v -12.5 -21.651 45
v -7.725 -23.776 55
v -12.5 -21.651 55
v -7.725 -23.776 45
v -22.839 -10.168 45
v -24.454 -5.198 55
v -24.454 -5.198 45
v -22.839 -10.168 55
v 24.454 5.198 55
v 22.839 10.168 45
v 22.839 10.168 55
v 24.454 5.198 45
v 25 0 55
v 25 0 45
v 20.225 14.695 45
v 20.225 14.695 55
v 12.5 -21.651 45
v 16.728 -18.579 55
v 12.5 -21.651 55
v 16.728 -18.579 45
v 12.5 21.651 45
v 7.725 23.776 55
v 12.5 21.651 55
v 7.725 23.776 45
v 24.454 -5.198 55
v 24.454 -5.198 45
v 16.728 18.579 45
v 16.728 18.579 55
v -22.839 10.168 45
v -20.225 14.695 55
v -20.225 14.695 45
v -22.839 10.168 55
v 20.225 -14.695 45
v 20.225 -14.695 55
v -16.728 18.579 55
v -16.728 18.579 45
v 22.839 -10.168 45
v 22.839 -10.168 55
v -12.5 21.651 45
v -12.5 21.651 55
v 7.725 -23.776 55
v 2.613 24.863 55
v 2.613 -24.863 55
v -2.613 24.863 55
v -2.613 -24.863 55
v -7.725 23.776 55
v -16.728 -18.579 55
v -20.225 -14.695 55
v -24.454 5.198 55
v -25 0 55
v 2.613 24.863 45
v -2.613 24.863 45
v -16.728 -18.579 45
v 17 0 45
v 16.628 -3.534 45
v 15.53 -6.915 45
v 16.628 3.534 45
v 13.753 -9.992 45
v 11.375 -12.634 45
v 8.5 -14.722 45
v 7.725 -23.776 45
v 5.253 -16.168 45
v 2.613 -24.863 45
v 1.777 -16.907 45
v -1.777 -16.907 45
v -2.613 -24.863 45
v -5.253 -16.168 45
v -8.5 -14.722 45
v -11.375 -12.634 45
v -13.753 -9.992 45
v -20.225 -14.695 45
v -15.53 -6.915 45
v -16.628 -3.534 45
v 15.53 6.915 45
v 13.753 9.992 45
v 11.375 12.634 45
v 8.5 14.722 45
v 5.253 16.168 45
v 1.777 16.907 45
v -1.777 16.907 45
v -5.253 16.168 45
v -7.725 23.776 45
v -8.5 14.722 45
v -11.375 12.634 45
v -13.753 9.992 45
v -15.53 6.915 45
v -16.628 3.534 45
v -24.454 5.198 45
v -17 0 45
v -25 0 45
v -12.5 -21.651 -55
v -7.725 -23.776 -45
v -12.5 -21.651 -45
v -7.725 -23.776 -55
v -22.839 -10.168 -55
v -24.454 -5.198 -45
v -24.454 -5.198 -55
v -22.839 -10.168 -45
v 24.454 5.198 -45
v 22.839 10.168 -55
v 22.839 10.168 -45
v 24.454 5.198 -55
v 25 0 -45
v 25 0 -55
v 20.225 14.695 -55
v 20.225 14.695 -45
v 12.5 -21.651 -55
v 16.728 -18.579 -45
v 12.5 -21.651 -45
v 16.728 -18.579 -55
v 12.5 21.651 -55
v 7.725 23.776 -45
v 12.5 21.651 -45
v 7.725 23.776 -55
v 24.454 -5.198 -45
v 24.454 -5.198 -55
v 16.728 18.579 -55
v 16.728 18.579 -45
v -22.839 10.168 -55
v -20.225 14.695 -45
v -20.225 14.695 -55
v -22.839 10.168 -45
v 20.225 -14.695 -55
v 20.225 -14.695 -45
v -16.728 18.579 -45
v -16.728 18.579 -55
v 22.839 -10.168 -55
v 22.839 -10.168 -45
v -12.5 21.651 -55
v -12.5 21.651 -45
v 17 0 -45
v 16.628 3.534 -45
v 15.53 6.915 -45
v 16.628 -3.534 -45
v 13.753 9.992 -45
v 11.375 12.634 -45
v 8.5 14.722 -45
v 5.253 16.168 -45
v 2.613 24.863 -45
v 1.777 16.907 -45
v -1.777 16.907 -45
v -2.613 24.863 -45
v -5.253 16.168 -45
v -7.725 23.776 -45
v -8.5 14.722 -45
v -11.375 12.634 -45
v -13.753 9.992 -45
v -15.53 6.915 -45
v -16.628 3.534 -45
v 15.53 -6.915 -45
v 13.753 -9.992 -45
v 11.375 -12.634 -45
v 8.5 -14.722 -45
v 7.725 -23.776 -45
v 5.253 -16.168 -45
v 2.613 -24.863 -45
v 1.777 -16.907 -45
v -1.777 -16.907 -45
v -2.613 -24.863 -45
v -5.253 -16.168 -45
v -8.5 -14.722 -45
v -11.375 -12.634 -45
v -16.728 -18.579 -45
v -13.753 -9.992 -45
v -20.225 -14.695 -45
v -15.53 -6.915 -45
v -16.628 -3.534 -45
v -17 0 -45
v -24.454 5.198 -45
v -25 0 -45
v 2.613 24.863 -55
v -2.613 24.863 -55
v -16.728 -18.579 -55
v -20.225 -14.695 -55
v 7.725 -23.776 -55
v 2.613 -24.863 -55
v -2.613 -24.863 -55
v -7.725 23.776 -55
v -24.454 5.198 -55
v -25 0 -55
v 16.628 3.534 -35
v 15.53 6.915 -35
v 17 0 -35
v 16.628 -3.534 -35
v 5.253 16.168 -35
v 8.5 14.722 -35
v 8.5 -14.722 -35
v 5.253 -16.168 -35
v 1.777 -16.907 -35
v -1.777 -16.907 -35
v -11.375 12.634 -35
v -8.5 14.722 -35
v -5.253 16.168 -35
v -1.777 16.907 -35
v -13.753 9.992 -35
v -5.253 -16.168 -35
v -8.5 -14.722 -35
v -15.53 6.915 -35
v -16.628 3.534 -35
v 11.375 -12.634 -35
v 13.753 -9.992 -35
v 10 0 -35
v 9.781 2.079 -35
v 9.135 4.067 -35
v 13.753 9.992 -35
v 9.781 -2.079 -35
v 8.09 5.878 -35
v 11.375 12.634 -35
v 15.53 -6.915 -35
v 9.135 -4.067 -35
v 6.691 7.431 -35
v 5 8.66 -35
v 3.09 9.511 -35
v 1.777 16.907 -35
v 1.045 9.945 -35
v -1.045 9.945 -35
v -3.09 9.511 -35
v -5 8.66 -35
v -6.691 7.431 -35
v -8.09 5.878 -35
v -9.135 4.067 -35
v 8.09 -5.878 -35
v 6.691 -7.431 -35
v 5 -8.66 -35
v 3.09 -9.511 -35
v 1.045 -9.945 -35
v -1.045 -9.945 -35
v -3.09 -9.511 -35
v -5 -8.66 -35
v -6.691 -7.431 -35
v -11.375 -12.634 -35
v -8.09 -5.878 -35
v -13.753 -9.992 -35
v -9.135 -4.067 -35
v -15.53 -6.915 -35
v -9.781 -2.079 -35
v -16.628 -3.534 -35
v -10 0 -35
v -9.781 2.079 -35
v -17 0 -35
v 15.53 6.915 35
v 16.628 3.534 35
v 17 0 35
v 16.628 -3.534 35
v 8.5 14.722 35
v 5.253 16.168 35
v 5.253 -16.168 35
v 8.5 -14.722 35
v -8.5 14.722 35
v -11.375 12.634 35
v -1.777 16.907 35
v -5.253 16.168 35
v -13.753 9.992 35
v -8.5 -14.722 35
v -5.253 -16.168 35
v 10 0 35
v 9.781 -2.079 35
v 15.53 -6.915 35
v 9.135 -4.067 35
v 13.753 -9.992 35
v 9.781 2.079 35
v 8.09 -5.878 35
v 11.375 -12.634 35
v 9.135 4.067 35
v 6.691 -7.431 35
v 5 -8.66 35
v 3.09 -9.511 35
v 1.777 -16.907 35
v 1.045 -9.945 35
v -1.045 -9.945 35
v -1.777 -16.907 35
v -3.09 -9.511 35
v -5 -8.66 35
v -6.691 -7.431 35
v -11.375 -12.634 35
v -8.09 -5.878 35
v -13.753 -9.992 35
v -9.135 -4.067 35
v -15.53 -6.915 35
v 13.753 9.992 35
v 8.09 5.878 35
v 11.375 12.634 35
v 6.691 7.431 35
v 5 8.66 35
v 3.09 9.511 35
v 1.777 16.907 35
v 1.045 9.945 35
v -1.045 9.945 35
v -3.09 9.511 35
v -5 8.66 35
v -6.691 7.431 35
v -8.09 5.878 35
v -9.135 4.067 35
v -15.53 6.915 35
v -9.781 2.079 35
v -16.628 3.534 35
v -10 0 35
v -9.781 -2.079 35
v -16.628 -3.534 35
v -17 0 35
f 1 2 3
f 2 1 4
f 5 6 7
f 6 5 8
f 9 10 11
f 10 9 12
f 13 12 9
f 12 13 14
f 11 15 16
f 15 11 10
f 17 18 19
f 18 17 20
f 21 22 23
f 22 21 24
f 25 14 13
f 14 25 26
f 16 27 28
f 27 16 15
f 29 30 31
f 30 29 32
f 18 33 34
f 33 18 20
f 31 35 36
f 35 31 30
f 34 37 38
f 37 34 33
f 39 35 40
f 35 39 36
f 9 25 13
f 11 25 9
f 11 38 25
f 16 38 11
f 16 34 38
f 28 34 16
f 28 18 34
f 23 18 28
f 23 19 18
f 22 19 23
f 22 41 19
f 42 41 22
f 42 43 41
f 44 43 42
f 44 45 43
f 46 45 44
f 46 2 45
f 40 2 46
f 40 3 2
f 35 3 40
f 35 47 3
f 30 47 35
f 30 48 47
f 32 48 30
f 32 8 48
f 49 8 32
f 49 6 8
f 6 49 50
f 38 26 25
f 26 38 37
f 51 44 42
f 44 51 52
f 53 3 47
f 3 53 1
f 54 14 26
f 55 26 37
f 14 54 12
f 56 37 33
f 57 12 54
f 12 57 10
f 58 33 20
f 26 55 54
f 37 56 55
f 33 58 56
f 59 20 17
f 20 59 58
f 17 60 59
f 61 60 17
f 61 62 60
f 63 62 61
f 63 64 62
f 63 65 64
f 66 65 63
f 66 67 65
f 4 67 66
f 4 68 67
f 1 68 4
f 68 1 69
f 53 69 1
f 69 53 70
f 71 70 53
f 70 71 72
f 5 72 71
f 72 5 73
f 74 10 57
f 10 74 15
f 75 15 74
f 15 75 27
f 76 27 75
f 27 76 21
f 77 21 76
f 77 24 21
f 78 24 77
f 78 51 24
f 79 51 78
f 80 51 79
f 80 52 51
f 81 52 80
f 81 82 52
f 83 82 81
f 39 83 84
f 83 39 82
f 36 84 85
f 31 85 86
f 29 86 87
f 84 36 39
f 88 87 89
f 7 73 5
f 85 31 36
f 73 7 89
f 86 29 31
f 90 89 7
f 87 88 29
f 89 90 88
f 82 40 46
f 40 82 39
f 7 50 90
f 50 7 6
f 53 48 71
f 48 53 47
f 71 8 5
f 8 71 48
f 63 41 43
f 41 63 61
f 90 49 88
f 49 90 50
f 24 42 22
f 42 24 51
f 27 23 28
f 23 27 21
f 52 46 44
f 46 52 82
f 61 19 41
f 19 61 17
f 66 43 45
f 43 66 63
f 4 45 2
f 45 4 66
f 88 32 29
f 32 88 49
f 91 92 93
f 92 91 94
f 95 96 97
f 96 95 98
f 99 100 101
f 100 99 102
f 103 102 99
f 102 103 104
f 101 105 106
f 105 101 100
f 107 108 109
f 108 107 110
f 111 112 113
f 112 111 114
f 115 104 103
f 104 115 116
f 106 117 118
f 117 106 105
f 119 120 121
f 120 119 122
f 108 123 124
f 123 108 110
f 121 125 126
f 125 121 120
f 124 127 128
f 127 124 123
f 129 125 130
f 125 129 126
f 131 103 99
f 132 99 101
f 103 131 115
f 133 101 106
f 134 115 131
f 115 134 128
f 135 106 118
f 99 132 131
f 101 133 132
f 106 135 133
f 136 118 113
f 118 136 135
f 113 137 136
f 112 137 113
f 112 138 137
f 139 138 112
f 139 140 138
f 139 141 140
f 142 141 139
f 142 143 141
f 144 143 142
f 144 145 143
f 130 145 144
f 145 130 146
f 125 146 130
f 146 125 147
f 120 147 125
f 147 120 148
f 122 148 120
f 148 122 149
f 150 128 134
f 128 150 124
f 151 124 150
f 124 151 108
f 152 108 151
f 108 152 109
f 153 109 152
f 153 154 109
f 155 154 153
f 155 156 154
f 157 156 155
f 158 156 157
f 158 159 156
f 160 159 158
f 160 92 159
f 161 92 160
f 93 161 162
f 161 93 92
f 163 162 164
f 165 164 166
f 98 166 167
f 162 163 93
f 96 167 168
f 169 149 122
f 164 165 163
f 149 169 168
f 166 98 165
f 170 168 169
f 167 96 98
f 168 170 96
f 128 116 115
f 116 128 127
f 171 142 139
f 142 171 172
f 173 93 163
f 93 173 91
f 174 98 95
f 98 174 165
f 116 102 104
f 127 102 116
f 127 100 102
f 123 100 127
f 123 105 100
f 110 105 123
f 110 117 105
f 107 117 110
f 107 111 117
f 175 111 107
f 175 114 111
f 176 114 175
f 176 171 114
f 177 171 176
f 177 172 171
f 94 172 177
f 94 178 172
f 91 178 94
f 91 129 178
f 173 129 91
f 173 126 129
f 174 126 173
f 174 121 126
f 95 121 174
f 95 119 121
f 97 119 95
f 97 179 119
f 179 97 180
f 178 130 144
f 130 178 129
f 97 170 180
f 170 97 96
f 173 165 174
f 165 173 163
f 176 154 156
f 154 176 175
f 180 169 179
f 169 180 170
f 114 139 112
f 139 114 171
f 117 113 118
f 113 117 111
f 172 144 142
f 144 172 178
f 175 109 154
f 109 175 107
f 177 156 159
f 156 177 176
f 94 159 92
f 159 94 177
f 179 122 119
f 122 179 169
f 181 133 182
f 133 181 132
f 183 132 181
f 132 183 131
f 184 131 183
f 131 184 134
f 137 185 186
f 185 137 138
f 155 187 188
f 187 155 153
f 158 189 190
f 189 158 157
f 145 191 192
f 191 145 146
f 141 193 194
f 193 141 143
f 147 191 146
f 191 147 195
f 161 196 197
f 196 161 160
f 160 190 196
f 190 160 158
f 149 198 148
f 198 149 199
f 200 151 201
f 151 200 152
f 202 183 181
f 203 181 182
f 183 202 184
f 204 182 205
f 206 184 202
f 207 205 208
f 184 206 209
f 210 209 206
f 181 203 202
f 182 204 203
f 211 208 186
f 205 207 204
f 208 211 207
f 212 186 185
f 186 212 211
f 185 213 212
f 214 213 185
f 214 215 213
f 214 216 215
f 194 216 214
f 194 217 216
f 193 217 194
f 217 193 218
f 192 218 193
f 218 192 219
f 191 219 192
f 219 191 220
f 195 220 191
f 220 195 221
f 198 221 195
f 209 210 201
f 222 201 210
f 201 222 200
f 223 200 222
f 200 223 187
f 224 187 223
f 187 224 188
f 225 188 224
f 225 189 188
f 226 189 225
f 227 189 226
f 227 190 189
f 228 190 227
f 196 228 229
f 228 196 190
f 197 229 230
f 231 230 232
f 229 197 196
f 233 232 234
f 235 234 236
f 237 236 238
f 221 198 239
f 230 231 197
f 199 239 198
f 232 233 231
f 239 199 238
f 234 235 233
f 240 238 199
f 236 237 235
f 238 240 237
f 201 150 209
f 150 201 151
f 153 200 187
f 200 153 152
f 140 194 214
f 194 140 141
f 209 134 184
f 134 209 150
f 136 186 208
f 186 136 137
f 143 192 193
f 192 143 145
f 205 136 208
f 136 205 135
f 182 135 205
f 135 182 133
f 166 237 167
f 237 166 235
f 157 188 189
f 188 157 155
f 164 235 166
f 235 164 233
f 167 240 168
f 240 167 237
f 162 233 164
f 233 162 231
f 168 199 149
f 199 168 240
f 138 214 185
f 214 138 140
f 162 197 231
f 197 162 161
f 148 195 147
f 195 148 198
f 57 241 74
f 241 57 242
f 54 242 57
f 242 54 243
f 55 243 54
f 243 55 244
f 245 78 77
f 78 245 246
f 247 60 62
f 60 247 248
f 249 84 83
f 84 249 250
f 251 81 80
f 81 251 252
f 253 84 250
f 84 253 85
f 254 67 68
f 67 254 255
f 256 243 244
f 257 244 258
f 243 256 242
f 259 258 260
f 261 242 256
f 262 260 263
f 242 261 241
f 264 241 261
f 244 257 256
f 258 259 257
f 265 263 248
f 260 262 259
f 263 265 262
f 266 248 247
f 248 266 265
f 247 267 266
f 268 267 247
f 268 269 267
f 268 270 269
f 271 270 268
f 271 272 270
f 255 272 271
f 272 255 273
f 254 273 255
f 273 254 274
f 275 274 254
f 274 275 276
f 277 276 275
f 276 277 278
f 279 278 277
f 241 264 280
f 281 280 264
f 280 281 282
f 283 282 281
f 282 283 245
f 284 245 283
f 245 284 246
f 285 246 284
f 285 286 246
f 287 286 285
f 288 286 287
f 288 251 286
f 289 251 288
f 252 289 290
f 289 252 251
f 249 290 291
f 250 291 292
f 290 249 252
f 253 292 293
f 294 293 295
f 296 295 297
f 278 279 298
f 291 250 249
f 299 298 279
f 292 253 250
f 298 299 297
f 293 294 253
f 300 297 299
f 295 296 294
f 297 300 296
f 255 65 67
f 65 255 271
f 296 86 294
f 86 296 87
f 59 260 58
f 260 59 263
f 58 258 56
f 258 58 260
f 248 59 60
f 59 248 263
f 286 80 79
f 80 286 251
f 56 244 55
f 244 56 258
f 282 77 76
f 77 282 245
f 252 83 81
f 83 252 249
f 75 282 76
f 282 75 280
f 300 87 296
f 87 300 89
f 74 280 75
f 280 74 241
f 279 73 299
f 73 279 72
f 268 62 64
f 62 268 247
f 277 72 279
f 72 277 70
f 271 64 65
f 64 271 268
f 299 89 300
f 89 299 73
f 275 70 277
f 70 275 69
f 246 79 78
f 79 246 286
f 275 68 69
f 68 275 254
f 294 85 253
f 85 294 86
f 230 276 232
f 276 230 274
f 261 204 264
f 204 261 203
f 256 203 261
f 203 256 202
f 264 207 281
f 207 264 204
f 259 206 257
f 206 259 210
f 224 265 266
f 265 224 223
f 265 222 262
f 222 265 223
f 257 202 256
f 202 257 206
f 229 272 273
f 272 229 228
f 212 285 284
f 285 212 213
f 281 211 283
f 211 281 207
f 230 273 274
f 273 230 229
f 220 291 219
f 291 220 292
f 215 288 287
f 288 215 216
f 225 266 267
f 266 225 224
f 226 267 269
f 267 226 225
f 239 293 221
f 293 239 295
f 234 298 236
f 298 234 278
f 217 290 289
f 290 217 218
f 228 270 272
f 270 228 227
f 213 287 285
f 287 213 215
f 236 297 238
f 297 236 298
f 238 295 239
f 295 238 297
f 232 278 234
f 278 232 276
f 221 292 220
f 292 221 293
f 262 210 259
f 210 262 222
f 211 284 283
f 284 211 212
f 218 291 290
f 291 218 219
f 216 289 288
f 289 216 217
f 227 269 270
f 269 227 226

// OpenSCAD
// Main shaft
module main_shaft() {
    cylinder(h=100, r=10, center=true);
}

// End caps
module end_caps() {
    translate([0, 0, 50])
        cylinder(h=10, r=25, center=true);
    translate([0, 0, -50])
        cylinder(h=10, r=25, center=true);
}

// Connectors
module connectors() {
    for (i = [-45, 45]) {
        translate([0, 0, i])
            cylinder(h=20, r=17, center=true);
    }
}

// Assembly
module object() {
    main_shaft();
    end_caps();
    connectors();
}

object();
